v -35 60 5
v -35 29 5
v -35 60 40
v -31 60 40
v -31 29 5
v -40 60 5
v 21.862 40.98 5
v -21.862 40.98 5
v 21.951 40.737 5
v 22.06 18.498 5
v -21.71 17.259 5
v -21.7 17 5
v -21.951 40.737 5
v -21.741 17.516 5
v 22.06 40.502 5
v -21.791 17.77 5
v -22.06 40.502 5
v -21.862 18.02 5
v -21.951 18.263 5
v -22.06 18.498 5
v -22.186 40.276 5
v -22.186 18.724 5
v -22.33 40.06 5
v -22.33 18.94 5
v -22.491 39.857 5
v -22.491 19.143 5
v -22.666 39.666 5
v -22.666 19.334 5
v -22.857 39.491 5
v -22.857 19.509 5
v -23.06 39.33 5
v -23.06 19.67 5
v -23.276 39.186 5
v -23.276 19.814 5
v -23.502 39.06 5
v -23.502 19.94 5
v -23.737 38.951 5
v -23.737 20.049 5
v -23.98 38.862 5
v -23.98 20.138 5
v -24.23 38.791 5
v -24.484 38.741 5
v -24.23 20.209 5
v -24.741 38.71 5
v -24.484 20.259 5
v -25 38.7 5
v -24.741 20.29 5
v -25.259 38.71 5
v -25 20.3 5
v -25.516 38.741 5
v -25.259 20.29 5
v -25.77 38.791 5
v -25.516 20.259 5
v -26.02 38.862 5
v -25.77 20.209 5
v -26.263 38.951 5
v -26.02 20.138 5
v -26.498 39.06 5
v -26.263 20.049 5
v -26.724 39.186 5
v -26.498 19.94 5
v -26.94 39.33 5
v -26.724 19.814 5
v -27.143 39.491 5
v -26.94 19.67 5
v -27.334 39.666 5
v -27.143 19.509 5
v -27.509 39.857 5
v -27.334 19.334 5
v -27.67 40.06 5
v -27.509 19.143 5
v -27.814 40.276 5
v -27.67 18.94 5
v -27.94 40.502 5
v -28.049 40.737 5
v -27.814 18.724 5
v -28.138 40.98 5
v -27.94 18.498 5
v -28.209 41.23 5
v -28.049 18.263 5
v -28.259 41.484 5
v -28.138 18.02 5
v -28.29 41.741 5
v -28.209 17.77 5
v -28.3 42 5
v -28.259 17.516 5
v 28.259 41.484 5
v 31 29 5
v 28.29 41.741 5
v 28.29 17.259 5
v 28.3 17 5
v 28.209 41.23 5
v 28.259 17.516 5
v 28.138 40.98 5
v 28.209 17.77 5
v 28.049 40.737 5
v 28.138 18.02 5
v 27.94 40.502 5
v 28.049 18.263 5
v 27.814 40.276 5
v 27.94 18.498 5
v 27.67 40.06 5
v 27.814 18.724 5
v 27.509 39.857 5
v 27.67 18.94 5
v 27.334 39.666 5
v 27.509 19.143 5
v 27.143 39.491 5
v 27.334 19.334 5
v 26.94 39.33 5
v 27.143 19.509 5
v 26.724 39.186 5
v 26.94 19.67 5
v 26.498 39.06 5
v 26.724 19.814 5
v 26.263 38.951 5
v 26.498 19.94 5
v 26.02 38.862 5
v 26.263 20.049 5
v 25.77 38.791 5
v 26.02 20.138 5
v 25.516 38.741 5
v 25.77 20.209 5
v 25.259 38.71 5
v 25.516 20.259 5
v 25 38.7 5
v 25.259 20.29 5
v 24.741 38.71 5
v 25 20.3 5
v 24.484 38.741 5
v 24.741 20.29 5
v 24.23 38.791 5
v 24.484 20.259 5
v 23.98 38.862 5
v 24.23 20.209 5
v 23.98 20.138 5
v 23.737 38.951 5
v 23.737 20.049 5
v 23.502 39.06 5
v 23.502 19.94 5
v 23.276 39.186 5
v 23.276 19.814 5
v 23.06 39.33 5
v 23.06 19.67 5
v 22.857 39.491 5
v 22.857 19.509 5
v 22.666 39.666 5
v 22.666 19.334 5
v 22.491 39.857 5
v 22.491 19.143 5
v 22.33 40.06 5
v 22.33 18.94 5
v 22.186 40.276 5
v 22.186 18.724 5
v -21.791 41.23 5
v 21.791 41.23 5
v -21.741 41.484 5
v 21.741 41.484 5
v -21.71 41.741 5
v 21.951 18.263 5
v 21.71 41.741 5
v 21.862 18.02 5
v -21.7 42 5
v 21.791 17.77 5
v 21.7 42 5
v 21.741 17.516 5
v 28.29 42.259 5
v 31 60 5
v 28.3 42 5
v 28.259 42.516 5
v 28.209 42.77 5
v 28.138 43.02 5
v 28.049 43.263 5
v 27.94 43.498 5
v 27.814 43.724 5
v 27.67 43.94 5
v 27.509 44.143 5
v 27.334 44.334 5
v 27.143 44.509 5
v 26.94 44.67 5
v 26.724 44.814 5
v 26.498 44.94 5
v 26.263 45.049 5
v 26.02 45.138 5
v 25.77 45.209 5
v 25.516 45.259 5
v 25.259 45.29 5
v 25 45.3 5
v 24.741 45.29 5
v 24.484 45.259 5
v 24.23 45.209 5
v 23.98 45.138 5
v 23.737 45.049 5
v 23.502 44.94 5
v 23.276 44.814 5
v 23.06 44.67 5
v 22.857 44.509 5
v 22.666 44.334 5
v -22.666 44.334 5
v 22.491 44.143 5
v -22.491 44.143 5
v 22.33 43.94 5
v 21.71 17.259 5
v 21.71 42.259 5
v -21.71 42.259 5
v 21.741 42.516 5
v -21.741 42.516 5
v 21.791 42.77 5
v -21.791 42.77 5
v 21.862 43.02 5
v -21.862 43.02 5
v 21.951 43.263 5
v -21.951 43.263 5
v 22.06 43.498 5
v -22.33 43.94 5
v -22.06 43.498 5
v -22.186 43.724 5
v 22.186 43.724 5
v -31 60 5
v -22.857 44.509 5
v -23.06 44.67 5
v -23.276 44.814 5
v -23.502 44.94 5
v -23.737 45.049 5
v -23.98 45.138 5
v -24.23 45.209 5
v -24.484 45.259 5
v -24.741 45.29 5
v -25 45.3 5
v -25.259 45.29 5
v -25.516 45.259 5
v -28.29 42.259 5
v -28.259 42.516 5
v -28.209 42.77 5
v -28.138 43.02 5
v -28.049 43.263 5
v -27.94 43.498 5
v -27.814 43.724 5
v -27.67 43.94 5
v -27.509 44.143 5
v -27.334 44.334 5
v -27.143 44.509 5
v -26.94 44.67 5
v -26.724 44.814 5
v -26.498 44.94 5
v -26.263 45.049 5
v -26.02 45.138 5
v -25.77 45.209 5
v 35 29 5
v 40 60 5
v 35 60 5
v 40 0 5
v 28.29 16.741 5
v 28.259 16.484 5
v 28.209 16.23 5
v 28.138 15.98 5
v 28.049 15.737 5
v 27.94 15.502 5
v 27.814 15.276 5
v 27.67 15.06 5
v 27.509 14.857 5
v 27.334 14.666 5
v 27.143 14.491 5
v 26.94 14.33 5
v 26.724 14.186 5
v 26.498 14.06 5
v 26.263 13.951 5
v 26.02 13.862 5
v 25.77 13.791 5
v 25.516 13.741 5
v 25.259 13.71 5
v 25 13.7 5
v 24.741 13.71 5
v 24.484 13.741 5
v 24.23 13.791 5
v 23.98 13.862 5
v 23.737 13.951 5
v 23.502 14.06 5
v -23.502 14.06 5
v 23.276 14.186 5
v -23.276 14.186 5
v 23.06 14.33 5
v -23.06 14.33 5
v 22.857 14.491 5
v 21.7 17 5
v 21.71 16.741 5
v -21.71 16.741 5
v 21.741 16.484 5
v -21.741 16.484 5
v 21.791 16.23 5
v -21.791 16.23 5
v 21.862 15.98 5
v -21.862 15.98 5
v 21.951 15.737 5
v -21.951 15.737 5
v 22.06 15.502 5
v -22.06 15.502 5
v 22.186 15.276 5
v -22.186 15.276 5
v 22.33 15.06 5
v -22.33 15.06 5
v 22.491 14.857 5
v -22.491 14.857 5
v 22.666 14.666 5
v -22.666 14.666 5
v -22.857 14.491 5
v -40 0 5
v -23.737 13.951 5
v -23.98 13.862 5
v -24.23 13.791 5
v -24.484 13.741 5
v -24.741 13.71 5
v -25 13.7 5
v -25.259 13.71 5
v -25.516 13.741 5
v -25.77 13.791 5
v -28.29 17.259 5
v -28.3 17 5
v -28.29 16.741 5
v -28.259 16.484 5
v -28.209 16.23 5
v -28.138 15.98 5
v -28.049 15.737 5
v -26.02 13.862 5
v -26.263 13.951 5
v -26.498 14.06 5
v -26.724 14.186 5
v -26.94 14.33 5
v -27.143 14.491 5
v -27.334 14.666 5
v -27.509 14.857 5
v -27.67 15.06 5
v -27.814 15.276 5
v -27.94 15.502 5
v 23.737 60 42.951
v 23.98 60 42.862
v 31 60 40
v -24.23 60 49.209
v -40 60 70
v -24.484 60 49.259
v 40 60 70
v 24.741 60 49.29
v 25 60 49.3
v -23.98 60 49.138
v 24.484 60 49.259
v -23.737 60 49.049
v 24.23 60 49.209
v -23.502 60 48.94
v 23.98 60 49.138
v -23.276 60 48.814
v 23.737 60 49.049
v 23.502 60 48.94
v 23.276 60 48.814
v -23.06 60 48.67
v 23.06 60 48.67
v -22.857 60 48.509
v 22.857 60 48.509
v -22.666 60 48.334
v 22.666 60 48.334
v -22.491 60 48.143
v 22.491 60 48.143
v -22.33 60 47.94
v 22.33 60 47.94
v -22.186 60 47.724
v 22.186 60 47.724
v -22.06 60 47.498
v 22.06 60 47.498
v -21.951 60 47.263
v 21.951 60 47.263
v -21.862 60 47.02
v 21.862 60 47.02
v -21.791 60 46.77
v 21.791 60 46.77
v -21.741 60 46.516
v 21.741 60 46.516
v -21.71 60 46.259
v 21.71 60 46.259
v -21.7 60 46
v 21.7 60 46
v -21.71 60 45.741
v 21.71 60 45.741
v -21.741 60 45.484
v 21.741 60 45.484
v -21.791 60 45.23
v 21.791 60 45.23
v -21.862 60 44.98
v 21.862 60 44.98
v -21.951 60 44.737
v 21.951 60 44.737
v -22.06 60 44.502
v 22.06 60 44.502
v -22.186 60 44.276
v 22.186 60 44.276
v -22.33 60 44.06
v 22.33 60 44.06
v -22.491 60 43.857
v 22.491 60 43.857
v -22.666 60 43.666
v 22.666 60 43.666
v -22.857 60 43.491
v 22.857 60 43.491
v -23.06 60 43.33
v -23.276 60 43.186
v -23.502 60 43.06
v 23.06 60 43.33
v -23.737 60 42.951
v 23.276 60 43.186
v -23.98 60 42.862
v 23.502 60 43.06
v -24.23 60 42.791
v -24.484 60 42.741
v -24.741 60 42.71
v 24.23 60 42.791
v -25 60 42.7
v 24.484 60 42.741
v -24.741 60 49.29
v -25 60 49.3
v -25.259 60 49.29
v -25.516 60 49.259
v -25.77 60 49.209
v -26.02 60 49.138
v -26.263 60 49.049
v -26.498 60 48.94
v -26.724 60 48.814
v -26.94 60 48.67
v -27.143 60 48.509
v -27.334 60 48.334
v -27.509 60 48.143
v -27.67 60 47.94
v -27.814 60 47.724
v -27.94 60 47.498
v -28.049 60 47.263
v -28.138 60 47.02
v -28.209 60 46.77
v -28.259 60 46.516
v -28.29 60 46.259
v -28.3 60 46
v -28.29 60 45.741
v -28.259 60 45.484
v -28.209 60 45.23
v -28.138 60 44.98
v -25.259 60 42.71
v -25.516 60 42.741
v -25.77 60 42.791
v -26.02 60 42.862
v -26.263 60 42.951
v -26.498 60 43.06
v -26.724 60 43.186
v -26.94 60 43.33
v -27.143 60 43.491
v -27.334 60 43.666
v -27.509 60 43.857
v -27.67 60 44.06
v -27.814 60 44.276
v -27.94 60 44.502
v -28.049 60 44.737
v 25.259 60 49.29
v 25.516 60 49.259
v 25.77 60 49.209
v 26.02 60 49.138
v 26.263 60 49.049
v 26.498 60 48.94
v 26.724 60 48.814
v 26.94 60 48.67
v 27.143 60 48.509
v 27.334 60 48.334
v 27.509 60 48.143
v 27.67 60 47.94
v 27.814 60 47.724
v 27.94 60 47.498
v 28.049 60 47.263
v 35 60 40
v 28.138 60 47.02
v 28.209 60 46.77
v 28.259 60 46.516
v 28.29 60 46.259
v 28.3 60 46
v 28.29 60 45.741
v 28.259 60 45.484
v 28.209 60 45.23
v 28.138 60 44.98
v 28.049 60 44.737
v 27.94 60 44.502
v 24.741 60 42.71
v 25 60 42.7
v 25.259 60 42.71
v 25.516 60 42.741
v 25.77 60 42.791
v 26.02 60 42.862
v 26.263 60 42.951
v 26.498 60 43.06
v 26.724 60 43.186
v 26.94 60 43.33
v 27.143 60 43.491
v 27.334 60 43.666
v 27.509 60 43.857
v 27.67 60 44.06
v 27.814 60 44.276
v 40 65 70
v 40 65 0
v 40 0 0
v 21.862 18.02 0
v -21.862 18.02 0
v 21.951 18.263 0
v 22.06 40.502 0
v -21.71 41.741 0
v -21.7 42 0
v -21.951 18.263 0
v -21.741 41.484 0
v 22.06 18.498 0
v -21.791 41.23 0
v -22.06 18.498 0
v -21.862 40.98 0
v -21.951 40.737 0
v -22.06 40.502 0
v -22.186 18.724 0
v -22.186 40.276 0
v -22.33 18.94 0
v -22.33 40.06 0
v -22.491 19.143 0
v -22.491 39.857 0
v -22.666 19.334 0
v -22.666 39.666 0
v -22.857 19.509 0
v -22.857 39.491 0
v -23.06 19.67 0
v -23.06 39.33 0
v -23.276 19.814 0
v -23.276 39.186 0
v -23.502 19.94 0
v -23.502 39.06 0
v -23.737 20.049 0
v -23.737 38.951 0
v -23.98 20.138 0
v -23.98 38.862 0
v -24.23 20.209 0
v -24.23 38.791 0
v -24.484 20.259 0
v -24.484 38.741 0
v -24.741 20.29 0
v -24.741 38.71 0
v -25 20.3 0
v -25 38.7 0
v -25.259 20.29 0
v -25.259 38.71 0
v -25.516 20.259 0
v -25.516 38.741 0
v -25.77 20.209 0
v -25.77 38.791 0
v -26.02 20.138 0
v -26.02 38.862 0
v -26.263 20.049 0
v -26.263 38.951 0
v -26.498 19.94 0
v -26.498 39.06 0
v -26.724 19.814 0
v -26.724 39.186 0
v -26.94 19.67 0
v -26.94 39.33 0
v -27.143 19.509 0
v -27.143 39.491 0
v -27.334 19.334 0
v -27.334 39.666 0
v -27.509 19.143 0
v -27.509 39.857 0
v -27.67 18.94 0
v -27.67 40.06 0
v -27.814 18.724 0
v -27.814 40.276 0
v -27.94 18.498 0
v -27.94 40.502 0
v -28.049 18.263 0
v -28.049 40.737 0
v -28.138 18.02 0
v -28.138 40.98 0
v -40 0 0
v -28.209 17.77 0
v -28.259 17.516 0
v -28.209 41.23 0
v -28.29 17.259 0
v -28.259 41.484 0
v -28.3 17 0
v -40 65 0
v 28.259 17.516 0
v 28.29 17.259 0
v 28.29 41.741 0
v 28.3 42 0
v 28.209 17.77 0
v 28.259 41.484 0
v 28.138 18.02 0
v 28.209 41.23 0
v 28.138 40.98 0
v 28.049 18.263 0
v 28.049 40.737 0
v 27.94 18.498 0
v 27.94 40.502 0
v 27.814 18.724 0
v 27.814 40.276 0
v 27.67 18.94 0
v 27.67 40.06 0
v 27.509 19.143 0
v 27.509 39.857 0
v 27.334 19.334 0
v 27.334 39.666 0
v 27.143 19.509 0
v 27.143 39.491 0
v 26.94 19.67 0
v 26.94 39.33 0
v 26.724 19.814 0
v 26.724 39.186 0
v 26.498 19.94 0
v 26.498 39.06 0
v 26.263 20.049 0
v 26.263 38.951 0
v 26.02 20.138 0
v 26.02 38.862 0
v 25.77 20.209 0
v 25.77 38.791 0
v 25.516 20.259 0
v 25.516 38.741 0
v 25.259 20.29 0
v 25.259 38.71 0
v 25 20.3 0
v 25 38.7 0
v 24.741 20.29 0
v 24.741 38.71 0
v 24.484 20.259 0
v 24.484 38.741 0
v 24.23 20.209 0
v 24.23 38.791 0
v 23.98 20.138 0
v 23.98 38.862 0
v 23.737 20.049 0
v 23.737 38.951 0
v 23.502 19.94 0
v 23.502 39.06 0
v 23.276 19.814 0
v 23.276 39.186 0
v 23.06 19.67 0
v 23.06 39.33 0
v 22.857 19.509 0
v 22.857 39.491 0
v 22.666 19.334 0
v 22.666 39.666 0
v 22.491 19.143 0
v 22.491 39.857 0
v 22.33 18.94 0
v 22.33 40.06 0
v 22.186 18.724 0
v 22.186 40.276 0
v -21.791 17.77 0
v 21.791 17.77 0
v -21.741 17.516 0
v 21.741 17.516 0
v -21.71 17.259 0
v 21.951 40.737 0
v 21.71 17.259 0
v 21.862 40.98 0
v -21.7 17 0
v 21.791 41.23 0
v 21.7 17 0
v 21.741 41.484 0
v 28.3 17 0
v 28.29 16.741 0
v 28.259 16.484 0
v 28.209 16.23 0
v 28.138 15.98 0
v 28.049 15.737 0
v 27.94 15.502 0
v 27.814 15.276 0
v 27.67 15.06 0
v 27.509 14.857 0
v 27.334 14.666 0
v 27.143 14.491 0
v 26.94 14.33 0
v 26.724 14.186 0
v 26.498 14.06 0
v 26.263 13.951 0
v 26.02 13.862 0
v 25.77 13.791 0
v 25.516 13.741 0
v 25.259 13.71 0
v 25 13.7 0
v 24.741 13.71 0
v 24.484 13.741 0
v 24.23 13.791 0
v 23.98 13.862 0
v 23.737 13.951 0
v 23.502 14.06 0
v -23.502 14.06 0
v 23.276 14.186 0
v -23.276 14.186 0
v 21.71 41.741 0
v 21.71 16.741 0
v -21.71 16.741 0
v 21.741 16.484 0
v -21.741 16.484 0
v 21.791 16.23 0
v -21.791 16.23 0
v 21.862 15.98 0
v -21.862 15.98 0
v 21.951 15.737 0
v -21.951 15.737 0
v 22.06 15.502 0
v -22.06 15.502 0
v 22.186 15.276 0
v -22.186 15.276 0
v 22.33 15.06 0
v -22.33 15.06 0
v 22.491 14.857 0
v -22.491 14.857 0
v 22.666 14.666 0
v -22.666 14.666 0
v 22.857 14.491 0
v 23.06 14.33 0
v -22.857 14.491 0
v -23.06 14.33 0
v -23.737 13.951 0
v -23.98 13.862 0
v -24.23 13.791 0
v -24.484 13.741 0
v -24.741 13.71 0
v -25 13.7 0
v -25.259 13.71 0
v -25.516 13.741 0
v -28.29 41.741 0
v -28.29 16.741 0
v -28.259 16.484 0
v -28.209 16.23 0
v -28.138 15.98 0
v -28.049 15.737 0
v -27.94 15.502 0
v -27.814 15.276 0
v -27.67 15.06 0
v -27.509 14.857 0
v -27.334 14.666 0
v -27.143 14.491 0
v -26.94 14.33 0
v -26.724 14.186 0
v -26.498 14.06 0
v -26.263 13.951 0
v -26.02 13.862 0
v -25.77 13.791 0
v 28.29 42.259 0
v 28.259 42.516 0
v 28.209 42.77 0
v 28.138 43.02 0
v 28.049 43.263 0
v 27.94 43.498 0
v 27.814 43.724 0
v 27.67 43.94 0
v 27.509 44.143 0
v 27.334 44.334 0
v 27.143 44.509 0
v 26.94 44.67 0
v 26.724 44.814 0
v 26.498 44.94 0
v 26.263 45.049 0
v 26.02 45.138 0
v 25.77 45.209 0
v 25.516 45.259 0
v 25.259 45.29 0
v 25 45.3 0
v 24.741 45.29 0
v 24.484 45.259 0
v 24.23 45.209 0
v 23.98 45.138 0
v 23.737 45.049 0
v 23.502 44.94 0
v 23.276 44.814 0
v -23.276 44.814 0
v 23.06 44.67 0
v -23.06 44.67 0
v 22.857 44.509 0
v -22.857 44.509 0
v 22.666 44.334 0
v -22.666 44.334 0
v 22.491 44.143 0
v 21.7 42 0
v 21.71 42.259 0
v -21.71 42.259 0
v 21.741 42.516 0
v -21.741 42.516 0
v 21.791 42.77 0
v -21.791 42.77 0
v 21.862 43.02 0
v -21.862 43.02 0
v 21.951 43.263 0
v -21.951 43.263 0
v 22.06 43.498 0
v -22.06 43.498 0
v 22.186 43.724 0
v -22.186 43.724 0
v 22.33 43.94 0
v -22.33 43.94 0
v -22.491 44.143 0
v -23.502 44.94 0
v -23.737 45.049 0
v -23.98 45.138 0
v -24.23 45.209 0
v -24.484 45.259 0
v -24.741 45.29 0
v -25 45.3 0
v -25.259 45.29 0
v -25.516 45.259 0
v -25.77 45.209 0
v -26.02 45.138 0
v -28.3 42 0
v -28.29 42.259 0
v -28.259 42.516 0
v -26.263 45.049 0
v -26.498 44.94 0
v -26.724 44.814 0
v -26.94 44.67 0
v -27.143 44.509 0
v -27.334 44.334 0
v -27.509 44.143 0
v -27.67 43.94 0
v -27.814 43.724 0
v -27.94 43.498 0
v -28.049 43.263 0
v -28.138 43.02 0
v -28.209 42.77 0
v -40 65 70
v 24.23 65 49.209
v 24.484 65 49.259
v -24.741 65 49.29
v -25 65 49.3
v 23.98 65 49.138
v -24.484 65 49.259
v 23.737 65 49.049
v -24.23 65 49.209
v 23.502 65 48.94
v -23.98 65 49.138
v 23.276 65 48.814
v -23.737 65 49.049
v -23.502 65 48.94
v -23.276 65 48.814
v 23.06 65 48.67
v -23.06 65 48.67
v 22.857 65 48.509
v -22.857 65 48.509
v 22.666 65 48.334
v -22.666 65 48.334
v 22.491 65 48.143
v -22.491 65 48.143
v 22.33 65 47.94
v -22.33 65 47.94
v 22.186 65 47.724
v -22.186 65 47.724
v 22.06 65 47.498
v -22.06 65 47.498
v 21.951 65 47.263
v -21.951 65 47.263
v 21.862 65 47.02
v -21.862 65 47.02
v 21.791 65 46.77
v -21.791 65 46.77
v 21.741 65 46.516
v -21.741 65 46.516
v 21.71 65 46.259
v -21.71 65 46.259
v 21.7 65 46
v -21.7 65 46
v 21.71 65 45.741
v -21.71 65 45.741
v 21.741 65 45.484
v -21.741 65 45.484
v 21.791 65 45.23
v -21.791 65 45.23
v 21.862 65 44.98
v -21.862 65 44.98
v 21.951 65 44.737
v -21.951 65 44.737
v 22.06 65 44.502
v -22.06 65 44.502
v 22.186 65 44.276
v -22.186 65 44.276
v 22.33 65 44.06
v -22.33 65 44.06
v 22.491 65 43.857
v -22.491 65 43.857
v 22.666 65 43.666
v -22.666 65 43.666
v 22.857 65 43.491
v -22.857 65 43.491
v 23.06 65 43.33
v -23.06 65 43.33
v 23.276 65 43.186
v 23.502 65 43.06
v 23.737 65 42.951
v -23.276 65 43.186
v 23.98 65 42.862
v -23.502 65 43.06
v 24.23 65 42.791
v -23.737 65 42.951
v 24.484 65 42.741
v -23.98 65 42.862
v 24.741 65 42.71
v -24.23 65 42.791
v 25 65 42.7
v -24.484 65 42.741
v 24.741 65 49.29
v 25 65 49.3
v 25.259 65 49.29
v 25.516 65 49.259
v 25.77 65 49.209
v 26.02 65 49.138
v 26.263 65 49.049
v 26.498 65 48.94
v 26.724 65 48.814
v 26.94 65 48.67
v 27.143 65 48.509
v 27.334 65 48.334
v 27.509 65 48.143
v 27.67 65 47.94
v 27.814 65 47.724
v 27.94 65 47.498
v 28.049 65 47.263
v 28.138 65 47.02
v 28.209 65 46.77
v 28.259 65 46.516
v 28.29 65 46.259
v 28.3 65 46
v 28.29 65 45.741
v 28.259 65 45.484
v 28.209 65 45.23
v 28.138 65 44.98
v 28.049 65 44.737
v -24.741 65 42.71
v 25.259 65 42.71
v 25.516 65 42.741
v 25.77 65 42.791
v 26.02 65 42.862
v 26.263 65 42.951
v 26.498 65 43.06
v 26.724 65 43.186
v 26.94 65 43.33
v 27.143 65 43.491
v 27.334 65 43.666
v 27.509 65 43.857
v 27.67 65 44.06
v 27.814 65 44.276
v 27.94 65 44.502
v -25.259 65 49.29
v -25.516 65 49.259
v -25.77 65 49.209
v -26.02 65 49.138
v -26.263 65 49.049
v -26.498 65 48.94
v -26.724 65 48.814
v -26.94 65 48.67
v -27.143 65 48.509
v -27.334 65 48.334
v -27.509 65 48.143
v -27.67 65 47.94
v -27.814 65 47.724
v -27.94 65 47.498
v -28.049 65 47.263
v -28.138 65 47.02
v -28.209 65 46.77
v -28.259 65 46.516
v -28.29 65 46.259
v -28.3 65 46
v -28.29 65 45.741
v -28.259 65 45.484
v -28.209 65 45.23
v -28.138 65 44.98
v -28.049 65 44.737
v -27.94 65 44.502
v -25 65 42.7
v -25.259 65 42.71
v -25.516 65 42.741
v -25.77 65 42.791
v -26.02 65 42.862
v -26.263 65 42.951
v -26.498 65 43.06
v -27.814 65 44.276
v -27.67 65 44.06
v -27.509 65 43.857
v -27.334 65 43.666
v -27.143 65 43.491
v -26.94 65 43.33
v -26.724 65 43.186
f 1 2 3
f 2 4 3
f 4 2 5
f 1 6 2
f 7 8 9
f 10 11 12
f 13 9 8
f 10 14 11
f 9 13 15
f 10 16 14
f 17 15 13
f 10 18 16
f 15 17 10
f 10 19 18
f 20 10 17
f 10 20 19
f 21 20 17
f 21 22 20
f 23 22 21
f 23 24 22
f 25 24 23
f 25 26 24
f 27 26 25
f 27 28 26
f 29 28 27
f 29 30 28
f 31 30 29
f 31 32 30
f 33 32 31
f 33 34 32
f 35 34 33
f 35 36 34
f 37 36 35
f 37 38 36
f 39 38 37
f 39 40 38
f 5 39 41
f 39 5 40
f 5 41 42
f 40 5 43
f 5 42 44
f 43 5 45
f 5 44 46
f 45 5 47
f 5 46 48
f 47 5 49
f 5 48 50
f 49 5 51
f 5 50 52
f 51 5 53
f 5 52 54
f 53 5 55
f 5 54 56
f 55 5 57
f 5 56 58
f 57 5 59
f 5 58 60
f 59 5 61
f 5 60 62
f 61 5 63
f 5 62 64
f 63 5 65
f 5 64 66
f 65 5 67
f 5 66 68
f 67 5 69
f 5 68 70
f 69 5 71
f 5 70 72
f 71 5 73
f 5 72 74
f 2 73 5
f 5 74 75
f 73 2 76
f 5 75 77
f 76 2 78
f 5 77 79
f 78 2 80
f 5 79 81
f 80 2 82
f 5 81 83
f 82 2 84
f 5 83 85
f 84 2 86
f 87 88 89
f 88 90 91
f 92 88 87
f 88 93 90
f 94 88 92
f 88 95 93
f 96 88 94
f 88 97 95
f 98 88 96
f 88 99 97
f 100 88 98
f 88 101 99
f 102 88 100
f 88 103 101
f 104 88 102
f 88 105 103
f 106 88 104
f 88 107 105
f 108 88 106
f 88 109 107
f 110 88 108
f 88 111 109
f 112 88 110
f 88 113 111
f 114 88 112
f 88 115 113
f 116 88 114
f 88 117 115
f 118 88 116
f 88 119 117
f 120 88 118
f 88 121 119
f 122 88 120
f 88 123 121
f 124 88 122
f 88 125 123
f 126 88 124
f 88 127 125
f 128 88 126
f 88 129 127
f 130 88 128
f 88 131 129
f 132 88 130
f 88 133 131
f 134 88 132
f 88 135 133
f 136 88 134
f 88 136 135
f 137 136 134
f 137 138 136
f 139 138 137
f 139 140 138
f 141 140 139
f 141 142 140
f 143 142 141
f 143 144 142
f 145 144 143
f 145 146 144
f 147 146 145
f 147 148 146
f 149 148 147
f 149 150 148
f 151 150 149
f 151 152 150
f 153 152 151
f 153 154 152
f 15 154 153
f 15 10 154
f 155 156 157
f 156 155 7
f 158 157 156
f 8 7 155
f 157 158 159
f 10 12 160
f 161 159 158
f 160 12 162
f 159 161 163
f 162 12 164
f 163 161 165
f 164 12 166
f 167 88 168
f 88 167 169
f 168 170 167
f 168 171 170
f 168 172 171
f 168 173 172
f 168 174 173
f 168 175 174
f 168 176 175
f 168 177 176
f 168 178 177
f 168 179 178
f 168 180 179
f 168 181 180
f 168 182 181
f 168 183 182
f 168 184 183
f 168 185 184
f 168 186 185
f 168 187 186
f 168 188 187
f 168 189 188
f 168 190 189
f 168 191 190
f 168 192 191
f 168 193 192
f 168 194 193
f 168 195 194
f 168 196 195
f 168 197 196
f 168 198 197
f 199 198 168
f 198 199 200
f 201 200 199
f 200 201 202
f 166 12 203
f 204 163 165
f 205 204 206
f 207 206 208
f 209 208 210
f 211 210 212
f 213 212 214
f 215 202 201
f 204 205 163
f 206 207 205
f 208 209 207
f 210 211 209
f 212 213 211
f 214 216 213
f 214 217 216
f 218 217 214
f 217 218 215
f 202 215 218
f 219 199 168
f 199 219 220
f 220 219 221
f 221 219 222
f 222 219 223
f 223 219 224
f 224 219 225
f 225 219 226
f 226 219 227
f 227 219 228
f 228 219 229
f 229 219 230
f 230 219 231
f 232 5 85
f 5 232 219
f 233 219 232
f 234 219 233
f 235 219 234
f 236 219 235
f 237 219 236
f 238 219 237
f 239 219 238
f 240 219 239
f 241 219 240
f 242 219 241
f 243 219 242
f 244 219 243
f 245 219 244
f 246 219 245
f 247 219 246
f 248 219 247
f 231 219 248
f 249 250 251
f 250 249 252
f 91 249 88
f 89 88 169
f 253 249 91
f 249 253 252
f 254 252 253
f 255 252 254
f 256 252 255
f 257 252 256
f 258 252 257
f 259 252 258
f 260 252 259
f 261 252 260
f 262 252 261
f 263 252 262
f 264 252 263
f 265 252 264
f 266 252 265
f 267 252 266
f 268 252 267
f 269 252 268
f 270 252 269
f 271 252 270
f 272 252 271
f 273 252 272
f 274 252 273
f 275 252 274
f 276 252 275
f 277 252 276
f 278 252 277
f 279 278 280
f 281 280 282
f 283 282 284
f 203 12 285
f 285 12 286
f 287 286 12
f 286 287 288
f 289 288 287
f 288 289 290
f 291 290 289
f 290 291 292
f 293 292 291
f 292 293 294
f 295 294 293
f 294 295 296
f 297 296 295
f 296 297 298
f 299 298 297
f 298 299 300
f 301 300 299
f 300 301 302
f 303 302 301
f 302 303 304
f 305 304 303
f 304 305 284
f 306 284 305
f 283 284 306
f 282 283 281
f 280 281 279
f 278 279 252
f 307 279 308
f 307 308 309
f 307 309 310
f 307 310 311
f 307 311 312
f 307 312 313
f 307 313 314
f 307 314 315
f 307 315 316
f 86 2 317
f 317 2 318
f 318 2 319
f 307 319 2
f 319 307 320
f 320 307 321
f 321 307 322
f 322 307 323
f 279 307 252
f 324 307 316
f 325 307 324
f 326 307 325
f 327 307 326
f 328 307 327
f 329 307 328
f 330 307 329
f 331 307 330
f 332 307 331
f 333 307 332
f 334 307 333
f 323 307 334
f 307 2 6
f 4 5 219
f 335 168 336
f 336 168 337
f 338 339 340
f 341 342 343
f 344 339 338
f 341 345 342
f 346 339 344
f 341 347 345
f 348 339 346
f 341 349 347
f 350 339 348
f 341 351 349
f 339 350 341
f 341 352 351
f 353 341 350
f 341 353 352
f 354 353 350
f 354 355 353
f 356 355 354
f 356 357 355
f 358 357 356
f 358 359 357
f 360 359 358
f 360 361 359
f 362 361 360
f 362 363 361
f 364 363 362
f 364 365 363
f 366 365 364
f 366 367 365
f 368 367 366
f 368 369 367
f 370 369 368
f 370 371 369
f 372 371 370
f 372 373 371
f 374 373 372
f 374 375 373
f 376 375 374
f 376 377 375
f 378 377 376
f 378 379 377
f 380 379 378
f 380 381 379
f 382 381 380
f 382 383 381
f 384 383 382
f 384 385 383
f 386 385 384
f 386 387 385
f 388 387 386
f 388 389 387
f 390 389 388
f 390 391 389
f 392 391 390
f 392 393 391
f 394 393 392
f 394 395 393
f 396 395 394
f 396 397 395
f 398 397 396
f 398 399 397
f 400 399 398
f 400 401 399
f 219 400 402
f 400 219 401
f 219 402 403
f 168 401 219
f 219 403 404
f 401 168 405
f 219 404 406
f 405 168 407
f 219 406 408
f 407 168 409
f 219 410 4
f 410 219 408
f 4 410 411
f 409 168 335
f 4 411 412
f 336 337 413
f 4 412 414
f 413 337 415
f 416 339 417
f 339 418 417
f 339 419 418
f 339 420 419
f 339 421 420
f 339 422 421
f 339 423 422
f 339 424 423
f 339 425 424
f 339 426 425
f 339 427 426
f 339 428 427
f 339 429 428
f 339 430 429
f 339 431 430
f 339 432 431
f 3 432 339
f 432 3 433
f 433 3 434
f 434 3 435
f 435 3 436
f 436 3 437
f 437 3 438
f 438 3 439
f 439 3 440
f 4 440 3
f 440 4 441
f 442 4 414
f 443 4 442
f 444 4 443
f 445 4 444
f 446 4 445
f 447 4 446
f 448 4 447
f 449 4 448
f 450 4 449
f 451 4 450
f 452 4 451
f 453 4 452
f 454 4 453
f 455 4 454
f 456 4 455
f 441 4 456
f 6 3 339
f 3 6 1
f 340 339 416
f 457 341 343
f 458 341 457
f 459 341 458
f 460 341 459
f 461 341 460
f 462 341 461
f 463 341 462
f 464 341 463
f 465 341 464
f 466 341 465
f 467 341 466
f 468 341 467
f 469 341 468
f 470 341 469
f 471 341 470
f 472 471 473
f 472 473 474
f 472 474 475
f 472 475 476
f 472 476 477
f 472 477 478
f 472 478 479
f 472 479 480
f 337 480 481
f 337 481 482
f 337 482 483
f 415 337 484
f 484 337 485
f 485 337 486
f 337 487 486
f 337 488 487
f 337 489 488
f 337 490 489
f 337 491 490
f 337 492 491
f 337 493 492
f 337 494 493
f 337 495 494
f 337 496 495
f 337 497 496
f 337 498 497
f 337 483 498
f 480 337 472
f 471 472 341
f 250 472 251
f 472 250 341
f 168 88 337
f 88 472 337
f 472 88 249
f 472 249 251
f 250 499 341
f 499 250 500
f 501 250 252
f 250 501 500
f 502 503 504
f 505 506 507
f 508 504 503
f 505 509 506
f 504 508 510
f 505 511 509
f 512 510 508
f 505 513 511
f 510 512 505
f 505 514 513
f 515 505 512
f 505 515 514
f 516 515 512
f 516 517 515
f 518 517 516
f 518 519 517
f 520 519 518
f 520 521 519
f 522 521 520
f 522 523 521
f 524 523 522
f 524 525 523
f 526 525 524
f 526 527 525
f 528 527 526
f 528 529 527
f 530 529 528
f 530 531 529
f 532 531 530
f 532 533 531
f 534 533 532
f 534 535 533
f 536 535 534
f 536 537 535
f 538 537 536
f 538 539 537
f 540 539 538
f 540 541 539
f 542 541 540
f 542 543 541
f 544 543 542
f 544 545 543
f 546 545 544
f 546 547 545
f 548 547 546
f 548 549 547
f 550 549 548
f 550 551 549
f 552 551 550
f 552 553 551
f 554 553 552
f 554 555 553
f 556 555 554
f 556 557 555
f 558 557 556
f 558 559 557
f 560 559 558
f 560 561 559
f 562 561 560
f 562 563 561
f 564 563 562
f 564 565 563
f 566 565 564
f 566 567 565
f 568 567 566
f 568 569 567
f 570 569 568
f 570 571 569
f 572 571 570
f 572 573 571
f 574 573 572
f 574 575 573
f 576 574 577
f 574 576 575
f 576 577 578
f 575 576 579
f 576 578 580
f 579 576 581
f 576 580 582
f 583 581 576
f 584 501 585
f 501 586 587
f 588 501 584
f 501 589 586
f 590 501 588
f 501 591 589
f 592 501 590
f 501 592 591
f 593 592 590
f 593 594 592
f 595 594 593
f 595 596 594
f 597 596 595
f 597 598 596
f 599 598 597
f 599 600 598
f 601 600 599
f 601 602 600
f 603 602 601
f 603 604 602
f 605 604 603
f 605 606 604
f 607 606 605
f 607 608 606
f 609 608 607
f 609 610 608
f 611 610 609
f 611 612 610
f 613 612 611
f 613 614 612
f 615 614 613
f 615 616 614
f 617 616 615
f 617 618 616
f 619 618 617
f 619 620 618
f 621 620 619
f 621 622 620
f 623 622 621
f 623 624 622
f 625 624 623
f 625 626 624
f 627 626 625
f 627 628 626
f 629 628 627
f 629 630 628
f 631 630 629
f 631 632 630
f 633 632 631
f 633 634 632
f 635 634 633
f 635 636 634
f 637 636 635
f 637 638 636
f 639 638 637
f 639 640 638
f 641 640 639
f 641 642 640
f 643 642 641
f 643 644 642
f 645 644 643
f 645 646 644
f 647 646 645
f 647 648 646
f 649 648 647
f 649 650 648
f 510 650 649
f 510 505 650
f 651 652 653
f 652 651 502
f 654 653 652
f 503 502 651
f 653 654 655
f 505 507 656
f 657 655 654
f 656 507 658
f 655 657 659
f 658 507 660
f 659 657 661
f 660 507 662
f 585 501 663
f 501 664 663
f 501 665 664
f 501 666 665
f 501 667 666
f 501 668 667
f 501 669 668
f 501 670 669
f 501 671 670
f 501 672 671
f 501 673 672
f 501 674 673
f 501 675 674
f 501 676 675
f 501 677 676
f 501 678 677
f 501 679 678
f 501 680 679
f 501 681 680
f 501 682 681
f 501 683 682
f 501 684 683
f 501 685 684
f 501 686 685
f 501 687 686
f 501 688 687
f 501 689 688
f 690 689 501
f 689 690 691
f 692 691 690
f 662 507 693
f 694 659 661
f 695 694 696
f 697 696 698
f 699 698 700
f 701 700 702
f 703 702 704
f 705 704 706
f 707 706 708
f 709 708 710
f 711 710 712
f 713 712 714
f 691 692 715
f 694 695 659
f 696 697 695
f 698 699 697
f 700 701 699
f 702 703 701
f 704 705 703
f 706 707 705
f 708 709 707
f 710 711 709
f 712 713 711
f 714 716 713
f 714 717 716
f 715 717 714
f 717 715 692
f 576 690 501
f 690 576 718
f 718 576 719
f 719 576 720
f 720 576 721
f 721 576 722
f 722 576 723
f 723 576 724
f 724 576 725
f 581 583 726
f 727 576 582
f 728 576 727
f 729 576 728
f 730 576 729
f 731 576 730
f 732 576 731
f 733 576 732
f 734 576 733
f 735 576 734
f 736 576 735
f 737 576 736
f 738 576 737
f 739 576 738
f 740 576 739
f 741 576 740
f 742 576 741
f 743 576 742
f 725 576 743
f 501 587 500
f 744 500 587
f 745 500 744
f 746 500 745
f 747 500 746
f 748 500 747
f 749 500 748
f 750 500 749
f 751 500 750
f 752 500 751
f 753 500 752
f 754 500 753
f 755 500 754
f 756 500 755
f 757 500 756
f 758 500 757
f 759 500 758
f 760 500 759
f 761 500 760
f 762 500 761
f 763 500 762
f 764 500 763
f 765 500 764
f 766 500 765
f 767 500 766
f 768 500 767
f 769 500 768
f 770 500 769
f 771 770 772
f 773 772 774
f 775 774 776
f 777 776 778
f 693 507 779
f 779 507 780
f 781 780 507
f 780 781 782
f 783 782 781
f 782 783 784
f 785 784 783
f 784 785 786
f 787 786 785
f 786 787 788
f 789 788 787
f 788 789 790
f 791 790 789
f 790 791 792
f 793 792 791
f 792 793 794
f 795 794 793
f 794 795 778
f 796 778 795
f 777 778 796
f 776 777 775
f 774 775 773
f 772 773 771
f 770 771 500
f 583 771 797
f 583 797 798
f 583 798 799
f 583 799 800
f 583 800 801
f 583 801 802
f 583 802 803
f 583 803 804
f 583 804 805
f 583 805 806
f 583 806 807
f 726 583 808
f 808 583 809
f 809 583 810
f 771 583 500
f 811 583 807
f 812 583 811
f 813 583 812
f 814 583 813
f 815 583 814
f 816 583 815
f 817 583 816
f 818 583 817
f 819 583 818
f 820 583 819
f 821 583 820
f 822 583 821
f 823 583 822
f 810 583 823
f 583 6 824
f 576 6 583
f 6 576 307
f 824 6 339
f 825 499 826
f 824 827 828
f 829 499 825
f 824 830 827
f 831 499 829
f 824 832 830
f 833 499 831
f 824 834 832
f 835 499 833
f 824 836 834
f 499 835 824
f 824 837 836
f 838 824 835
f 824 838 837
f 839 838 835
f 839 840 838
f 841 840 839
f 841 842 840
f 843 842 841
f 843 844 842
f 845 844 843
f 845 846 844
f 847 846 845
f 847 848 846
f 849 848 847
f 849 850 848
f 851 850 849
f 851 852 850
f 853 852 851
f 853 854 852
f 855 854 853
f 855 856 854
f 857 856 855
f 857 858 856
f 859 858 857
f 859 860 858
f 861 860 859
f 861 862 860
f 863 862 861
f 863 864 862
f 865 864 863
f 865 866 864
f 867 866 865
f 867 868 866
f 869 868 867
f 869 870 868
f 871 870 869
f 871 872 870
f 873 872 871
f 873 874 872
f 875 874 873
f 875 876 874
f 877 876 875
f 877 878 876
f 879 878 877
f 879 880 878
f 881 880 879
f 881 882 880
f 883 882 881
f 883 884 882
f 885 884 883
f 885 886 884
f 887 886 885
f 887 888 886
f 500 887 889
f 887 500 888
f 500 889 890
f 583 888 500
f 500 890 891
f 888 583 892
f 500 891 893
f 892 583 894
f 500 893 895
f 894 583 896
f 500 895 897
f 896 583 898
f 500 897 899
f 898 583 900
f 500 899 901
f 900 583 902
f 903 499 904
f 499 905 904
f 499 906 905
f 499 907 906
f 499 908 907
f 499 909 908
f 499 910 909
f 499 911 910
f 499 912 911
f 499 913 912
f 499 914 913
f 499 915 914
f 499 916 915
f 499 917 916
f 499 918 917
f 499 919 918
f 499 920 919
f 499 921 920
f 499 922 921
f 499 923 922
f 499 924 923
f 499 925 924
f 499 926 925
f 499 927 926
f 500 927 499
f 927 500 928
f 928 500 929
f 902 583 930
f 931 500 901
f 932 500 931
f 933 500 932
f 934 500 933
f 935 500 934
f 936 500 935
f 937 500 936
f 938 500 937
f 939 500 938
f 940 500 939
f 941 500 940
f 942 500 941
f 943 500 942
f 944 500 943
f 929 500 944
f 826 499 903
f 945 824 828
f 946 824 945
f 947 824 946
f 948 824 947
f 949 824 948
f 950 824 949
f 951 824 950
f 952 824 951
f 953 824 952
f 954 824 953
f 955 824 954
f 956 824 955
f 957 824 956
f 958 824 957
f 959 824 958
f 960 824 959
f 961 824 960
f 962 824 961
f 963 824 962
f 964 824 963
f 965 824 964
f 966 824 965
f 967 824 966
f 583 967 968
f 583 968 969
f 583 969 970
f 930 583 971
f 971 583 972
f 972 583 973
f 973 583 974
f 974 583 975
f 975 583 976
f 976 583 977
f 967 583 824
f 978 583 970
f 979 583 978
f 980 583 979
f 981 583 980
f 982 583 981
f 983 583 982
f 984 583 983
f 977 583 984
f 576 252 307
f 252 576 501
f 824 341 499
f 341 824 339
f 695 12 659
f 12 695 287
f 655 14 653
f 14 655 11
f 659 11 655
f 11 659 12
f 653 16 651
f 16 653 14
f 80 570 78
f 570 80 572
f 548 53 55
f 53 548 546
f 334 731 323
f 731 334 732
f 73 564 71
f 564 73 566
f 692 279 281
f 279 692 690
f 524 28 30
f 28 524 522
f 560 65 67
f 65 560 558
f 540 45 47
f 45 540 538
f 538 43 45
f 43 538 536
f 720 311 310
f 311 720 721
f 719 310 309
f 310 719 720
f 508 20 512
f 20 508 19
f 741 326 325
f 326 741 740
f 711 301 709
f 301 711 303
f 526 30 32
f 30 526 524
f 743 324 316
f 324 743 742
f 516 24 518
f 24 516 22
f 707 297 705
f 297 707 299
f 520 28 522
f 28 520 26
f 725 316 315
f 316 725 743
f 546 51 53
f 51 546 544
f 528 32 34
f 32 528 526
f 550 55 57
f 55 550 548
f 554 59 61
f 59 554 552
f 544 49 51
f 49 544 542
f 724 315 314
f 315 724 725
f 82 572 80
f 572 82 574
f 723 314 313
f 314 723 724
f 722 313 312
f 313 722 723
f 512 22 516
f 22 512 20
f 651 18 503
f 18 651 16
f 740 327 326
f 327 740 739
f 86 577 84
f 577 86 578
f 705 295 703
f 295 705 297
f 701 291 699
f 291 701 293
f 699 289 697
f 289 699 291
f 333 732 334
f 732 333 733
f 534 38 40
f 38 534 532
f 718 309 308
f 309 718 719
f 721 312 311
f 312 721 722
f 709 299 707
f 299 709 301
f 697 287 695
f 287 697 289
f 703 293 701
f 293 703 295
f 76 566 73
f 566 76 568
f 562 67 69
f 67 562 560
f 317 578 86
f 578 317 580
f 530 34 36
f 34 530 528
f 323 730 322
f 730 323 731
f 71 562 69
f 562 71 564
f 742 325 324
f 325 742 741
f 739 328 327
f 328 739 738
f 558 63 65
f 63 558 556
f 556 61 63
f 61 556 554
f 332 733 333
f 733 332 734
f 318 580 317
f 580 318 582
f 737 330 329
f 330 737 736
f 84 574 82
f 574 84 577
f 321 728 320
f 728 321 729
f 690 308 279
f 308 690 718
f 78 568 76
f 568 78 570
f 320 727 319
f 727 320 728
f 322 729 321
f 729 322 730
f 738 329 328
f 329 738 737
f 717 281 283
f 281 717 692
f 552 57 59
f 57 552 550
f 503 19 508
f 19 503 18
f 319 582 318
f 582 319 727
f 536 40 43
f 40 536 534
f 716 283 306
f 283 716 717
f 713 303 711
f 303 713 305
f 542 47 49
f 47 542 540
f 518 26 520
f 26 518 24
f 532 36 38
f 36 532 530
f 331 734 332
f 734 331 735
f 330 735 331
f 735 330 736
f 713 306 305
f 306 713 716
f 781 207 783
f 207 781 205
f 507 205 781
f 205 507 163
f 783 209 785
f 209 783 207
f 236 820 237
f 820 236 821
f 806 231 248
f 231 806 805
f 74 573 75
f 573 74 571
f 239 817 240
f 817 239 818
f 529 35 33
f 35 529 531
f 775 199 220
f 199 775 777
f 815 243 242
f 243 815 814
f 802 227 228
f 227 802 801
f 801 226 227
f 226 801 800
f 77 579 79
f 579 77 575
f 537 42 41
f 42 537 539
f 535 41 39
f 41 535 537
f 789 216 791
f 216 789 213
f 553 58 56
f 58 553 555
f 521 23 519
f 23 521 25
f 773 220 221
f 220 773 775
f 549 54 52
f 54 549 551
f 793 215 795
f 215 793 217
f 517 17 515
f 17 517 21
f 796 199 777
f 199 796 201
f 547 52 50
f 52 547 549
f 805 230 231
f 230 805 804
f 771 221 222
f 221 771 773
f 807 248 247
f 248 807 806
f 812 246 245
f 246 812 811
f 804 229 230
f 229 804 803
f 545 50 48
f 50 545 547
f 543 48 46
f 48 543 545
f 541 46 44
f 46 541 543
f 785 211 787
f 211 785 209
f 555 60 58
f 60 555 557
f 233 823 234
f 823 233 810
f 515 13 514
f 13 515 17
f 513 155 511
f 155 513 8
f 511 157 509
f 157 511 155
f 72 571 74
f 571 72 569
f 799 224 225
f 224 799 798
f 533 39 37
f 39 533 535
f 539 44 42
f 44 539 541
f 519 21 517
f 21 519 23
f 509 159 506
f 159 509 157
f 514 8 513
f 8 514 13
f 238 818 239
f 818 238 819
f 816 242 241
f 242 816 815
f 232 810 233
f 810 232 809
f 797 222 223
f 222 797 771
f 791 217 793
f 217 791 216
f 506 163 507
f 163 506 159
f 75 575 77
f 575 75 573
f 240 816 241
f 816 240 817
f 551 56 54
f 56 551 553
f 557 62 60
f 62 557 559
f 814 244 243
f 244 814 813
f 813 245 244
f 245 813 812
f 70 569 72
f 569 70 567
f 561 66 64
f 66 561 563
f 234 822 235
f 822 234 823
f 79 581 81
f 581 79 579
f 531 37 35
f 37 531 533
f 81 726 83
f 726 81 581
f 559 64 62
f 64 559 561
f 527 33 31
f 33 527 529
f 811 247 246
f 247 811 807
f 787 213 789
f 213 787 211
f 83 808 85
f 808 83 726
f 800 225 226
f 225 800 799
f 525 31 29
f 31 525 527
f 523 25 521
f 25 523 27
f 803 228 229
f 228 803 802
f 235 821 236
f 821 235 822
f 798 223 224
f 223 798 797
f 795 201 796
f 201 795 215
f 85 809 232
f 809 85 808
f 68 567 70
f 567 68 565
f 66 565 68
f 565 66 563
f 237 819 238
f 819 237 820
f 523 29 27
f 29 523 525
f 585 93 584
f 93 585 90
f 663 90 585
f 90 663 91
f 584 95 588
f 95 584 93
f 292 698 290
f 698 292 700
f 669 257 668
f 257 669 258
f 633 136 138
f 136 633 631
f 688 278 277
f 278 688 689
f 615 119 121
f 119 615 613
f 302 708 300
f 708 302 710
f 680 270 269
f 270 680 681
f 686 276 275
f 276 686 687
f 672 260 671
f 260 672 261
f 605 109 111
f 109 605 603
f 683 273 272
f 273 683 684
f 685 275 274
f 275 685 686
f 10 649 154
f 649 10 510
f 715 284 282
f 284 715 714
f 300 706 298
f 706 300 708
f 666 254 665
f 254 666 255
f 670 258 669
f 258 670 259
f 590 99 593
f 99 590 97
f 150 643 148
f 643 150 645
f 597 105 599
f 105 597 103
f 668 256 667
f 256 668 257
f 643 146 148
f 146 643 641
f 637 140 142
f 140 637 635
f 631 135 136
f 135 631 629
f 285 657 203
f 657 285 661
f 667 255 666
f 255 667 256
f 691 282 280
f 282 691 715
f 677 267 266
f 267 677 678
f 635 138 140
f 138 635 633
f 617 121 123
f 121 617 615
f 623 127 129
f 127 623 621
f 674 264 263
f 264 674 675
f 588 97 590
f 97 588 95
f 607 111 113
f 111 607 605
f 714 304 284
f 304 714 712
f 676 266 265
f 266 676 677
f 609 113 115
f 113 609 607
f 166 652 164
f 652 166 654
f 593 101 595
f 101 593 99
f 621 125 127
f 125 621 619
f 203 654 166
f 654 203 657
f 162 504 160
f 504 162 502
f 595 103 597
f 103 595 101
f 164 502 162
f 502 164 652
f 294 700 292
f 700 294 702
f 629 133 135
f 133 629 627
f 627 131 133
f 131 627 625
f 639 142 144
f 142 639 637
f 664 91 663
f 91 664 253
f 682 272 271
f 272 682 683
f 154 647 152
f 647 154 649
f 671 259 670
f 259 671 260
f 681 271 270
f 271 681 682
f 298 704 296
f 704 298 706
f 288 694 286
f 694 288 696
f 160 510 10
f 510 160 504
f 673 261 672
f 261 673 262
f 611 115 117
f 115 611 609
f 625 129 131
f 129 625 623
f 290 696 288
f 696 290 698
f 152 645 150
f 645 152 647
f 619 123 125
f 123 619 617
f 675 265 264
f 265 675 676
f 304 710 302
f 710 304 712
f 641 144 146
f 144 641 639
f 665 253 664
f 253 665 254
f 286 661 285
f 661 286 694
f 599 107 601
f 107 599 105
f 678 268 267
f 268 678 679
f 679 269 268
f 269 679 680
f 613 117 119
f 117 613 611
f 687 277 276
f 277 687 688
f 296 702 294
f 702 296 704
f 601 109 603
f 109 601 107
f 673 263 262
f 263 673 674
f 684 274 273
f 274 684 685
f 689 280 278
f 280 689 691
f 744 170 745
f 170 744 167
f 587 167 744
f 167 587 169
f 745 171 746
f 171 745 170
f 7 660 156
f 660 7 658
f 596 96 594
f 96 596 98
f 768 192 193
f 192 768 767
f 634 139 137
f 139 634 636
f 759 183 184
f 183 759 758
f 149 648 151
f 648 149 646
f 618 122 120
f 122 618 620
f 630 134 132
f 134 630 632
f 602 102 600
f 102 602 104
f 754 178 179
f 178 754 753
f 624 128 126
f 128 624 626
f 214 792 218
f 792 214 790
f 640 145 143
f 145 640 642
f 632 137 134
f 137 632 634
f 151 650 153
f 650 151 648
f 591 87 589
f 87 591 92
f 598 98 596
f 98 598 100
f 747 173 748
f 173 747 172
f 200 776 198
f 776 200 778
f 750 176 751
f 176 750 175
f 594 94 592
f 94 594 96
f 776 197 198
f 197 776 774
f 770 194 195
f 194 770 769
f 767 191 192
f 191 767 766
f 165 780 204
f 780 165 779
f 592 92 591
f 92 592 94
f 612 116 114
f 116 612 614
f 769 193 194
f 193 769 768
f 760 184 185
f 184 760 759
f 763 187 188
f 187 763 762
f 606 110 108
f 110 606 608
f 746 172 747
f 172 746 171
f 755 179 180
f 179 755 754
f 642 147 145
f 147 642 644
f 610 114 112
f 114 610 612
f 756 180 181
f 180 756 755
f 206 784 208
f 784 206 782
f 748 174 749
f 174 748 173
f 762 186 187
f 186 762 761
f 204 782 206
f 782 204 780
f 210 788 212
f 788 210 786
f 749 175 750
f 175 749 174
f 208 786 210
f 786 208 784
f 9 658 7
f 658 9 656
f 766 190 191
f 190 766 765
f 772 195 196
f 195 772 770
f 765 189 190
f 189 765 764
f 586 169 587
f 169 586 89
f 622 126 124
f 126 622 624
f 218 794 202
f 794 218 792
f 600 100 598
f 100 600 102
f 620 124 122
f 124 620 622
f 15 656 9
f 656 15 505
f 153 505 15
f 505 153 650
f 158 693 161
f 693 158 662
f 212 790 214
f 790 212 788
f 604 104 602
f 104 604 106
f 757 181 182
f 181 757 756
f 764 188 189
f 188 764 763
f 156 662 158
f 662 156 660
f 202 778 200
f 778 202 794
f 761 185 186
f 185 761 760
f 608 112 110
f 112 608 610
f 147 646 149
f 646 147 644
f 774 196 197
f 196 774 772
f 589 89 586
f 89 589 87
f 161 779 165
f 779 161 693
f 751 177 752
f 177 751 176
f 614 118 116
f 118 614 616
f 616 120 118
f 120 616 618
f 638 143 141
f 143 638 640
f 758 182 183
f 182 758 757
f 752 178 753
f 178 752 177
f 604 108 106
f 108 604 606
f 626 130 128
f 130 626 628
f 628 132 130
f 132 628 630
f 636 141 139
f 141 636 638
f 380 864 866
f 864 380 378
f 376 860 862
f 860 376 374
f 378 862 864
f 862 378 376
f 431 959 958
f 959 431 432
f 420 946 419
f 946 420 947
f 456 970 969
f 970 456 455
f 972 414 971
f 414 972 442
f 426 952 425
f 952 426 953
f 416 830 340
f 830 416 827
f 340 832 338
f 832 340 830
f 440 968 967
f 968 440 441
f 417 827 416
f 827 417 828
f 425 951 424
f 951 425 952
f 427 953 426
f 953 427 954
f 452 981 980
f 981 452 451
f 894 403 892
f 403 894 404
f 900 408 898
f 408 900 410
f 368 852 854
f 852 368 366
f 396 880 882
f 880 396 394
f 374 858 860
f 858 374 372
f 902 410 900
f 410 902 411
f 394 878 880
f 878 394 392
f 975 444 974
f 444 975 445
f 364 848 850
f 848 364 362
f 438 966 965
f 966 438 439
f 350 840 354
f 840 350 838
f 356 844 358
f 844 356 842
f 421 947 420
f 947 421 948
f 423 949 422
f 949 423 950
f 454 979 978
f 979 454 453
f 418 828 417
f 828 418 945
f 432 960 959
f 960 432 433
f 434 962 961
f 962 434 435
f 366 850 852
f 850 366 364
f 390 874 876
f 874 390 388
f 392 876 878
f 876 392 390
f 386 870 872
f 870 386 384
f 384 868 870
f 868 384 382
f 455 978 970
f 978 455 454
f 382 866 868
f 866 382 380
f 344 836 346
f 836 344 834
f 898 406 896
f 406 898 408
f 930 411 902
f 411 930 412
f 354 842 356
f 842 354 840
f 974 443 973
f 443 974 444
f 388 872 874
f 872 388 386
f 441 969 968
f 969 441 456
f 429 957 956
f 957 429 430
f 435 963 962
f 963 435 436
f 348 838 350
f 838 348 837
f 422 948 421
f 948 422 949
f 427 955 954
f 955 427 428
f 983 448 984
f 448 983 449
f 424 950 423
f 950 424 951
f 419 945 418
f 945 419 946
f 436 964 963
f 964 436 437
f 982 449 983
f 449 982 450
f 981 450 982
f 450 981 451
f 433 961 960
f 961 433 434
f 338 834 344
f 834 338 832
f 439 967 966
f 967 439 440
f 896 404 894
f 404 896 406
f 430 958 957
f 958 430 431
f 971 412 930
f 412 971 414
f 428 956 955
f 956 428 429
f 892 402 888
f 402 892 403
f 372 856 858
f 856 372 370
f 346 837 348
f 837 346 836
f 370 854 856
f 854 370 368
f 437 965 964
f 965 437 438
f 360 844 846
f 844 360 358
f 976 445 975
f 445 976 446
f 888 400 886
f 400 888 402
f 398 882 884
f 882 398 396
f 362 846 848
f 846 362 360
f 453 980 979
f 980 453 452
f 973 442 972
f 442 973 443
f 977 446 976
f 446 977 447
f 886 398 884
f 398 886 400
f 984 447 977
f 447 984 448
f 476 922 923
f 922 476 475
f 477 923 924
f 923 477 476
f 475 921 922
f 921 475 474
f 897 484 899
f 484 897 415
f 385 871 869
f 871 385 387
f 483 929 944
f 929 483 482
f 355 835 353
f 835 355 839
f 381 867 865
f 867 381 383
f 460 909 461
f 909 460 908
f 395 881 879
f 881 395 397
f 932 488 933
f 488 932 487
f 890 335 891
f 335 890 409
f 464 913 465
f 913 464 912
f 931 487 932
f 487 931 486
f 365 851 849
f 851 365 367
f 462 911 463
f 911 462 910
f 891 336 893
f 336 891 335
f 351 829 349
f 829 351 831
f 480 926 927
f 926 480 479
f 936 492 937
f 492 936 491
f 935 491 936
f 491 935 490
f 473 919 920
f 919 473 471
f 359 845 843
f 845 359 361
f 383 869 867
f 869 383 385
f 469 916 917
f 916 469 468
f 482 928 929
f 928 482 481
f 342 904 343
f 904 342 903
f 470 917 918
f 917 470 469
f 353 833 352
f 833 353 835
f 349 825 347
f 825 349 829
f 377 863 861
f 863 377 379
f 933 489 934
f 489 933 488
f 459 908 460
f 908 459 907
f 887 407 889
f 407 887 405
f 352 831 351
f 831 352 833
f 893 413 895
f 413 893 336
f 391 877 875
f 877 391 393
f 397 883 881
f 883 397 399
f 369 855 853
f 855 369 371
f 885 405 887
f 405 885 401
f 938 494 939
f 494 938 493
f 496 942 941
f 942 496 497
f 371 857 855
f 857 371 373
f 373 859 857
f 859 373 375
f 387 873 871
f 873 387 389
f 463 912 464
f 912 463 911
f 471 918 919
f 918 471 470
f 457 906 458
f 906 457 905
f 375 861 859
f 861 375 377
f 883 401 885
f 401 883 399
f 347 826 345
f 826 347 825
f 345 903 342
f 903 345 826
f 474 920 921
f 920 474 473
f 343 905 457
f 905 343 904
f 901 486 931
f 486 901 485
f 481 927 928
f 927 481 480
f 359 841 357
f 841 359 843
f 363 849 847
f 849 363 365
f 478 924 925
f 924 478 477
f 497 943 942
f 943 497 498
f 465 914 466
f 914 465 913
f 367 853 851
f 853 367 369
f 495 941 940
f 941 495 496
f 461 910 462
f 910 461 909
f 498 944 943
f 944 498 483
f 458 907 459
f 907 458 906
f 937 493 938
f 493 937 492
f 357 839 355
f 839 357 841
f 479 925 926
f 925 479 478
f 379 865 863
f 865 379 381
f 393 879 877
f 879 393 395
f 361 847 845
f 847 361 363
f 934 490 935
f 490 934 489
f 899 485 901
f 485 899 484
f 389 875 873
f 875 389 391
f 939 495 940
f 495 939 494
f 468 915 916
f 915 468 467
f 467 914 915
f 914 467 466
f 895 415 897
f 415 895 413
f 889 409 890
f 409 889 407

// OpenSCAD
/*
Parametric gusseted L-bracket — portfolio adaptation, 2026.
Reference concept: Samet Ozer, Parametric Filleted L-Bracket,
https://github.com/scaletr/openscad_md/blob/main/L_bracket/L_bracket_v3.scad
MIT-licensed reference: see LICENSE-REFERENCE.txt.
Geometry rewritten with six mounting holes, two optional side webs
and configurable parameters. Units mm; NOT load-rated.
*/

/* [Bracket dimensions in mm] */
width=80;
base_depth=65;
upright_height=70;
thickness=5;

/* [Mounting holes in mm] */
hole_diameter=6.6;
hole_x_spacing=50;
base_hole_front=17;
base_hole_back=42;
upright_hole_height=46;

/* [Triangular reinforcement] */
gussets_enabled=true;
web_thickness=4;
gusset_reach=31;
gusset_height=35;
web_side_inset=7;

/* [Render quality] */
$fn=80;

// Geometric bounds only; these assertions do not verify load capacity.
assert(width>0 && base_depth>0 && upright_height>0 && thickness>0);
assert(thickness<min(base_depth,upright_height)/2);
assert(hole_diameter>0 && hole_diameter<thickness*3);
assert(hole_x_spacing>0 && (hole_x_spacing/2+hole_diameter/2)<width/2);
assert(base_hole_front>hole_diameter/2 && base_hole_back<base_depth-thickness-hole_diameter/2);
assert(base_hole_back>base_hole_front+hole_diameter);
assert(upright_hole_height>thickness+hole_diameter/2 &&
       upright_hole_height<upright_height-hole_diameter/2);
assert(web_thickness>0 && web_side_inset>web_thickness/2);
assert(gusset_reach<base_depth-thickness && gusset_height<upright_height-thickness);

module raw_bracket(){
    union(){
        translate([-width/2,0,0])cube([width,base_depth,thickness]);
        translate([-width/2,base_depth-thickness,0])
            cube([width,thickness,upright_height]);
        if(gussets_enabled){
            for(side=[-1,1]){
                translate([side*(width/2-web_side_inset)-web_thickness/2,0,0])
                    rotate([0,90,0])linear_extrude(height=web_thickness)
                        polygon(points=[
                            [-thickness,base_depth-thickness],
                            [-thickness,base_depth-thickness-gusset_reach],
                            [-thickness-gusset_height,base_depth-thickness]
                        ]);
            }
        }
    }
}

module bracket(){
    difference(){
        raw_bracket();
        // Base mounting holes through horizontal plate (Z)
        for(x=[-hole_x_spacing/2,hole_x_spacing/2])
            for(y=[base_hole_front,base_hole_back])
                translate([x,y,-1])cylinder(d=hole_diameter,h=thickness+2);
        // Upright mounting holes through vertical plate (Y)
        for(x=[-hole_x_spacing/2,hole_x_spacing/2])
            translate([x,base_depth+1,upright_hole_height])
                rotate([90,0,0])cylinder(d=hole_diameter,h=thickness+2);
    }
}

bracket();
